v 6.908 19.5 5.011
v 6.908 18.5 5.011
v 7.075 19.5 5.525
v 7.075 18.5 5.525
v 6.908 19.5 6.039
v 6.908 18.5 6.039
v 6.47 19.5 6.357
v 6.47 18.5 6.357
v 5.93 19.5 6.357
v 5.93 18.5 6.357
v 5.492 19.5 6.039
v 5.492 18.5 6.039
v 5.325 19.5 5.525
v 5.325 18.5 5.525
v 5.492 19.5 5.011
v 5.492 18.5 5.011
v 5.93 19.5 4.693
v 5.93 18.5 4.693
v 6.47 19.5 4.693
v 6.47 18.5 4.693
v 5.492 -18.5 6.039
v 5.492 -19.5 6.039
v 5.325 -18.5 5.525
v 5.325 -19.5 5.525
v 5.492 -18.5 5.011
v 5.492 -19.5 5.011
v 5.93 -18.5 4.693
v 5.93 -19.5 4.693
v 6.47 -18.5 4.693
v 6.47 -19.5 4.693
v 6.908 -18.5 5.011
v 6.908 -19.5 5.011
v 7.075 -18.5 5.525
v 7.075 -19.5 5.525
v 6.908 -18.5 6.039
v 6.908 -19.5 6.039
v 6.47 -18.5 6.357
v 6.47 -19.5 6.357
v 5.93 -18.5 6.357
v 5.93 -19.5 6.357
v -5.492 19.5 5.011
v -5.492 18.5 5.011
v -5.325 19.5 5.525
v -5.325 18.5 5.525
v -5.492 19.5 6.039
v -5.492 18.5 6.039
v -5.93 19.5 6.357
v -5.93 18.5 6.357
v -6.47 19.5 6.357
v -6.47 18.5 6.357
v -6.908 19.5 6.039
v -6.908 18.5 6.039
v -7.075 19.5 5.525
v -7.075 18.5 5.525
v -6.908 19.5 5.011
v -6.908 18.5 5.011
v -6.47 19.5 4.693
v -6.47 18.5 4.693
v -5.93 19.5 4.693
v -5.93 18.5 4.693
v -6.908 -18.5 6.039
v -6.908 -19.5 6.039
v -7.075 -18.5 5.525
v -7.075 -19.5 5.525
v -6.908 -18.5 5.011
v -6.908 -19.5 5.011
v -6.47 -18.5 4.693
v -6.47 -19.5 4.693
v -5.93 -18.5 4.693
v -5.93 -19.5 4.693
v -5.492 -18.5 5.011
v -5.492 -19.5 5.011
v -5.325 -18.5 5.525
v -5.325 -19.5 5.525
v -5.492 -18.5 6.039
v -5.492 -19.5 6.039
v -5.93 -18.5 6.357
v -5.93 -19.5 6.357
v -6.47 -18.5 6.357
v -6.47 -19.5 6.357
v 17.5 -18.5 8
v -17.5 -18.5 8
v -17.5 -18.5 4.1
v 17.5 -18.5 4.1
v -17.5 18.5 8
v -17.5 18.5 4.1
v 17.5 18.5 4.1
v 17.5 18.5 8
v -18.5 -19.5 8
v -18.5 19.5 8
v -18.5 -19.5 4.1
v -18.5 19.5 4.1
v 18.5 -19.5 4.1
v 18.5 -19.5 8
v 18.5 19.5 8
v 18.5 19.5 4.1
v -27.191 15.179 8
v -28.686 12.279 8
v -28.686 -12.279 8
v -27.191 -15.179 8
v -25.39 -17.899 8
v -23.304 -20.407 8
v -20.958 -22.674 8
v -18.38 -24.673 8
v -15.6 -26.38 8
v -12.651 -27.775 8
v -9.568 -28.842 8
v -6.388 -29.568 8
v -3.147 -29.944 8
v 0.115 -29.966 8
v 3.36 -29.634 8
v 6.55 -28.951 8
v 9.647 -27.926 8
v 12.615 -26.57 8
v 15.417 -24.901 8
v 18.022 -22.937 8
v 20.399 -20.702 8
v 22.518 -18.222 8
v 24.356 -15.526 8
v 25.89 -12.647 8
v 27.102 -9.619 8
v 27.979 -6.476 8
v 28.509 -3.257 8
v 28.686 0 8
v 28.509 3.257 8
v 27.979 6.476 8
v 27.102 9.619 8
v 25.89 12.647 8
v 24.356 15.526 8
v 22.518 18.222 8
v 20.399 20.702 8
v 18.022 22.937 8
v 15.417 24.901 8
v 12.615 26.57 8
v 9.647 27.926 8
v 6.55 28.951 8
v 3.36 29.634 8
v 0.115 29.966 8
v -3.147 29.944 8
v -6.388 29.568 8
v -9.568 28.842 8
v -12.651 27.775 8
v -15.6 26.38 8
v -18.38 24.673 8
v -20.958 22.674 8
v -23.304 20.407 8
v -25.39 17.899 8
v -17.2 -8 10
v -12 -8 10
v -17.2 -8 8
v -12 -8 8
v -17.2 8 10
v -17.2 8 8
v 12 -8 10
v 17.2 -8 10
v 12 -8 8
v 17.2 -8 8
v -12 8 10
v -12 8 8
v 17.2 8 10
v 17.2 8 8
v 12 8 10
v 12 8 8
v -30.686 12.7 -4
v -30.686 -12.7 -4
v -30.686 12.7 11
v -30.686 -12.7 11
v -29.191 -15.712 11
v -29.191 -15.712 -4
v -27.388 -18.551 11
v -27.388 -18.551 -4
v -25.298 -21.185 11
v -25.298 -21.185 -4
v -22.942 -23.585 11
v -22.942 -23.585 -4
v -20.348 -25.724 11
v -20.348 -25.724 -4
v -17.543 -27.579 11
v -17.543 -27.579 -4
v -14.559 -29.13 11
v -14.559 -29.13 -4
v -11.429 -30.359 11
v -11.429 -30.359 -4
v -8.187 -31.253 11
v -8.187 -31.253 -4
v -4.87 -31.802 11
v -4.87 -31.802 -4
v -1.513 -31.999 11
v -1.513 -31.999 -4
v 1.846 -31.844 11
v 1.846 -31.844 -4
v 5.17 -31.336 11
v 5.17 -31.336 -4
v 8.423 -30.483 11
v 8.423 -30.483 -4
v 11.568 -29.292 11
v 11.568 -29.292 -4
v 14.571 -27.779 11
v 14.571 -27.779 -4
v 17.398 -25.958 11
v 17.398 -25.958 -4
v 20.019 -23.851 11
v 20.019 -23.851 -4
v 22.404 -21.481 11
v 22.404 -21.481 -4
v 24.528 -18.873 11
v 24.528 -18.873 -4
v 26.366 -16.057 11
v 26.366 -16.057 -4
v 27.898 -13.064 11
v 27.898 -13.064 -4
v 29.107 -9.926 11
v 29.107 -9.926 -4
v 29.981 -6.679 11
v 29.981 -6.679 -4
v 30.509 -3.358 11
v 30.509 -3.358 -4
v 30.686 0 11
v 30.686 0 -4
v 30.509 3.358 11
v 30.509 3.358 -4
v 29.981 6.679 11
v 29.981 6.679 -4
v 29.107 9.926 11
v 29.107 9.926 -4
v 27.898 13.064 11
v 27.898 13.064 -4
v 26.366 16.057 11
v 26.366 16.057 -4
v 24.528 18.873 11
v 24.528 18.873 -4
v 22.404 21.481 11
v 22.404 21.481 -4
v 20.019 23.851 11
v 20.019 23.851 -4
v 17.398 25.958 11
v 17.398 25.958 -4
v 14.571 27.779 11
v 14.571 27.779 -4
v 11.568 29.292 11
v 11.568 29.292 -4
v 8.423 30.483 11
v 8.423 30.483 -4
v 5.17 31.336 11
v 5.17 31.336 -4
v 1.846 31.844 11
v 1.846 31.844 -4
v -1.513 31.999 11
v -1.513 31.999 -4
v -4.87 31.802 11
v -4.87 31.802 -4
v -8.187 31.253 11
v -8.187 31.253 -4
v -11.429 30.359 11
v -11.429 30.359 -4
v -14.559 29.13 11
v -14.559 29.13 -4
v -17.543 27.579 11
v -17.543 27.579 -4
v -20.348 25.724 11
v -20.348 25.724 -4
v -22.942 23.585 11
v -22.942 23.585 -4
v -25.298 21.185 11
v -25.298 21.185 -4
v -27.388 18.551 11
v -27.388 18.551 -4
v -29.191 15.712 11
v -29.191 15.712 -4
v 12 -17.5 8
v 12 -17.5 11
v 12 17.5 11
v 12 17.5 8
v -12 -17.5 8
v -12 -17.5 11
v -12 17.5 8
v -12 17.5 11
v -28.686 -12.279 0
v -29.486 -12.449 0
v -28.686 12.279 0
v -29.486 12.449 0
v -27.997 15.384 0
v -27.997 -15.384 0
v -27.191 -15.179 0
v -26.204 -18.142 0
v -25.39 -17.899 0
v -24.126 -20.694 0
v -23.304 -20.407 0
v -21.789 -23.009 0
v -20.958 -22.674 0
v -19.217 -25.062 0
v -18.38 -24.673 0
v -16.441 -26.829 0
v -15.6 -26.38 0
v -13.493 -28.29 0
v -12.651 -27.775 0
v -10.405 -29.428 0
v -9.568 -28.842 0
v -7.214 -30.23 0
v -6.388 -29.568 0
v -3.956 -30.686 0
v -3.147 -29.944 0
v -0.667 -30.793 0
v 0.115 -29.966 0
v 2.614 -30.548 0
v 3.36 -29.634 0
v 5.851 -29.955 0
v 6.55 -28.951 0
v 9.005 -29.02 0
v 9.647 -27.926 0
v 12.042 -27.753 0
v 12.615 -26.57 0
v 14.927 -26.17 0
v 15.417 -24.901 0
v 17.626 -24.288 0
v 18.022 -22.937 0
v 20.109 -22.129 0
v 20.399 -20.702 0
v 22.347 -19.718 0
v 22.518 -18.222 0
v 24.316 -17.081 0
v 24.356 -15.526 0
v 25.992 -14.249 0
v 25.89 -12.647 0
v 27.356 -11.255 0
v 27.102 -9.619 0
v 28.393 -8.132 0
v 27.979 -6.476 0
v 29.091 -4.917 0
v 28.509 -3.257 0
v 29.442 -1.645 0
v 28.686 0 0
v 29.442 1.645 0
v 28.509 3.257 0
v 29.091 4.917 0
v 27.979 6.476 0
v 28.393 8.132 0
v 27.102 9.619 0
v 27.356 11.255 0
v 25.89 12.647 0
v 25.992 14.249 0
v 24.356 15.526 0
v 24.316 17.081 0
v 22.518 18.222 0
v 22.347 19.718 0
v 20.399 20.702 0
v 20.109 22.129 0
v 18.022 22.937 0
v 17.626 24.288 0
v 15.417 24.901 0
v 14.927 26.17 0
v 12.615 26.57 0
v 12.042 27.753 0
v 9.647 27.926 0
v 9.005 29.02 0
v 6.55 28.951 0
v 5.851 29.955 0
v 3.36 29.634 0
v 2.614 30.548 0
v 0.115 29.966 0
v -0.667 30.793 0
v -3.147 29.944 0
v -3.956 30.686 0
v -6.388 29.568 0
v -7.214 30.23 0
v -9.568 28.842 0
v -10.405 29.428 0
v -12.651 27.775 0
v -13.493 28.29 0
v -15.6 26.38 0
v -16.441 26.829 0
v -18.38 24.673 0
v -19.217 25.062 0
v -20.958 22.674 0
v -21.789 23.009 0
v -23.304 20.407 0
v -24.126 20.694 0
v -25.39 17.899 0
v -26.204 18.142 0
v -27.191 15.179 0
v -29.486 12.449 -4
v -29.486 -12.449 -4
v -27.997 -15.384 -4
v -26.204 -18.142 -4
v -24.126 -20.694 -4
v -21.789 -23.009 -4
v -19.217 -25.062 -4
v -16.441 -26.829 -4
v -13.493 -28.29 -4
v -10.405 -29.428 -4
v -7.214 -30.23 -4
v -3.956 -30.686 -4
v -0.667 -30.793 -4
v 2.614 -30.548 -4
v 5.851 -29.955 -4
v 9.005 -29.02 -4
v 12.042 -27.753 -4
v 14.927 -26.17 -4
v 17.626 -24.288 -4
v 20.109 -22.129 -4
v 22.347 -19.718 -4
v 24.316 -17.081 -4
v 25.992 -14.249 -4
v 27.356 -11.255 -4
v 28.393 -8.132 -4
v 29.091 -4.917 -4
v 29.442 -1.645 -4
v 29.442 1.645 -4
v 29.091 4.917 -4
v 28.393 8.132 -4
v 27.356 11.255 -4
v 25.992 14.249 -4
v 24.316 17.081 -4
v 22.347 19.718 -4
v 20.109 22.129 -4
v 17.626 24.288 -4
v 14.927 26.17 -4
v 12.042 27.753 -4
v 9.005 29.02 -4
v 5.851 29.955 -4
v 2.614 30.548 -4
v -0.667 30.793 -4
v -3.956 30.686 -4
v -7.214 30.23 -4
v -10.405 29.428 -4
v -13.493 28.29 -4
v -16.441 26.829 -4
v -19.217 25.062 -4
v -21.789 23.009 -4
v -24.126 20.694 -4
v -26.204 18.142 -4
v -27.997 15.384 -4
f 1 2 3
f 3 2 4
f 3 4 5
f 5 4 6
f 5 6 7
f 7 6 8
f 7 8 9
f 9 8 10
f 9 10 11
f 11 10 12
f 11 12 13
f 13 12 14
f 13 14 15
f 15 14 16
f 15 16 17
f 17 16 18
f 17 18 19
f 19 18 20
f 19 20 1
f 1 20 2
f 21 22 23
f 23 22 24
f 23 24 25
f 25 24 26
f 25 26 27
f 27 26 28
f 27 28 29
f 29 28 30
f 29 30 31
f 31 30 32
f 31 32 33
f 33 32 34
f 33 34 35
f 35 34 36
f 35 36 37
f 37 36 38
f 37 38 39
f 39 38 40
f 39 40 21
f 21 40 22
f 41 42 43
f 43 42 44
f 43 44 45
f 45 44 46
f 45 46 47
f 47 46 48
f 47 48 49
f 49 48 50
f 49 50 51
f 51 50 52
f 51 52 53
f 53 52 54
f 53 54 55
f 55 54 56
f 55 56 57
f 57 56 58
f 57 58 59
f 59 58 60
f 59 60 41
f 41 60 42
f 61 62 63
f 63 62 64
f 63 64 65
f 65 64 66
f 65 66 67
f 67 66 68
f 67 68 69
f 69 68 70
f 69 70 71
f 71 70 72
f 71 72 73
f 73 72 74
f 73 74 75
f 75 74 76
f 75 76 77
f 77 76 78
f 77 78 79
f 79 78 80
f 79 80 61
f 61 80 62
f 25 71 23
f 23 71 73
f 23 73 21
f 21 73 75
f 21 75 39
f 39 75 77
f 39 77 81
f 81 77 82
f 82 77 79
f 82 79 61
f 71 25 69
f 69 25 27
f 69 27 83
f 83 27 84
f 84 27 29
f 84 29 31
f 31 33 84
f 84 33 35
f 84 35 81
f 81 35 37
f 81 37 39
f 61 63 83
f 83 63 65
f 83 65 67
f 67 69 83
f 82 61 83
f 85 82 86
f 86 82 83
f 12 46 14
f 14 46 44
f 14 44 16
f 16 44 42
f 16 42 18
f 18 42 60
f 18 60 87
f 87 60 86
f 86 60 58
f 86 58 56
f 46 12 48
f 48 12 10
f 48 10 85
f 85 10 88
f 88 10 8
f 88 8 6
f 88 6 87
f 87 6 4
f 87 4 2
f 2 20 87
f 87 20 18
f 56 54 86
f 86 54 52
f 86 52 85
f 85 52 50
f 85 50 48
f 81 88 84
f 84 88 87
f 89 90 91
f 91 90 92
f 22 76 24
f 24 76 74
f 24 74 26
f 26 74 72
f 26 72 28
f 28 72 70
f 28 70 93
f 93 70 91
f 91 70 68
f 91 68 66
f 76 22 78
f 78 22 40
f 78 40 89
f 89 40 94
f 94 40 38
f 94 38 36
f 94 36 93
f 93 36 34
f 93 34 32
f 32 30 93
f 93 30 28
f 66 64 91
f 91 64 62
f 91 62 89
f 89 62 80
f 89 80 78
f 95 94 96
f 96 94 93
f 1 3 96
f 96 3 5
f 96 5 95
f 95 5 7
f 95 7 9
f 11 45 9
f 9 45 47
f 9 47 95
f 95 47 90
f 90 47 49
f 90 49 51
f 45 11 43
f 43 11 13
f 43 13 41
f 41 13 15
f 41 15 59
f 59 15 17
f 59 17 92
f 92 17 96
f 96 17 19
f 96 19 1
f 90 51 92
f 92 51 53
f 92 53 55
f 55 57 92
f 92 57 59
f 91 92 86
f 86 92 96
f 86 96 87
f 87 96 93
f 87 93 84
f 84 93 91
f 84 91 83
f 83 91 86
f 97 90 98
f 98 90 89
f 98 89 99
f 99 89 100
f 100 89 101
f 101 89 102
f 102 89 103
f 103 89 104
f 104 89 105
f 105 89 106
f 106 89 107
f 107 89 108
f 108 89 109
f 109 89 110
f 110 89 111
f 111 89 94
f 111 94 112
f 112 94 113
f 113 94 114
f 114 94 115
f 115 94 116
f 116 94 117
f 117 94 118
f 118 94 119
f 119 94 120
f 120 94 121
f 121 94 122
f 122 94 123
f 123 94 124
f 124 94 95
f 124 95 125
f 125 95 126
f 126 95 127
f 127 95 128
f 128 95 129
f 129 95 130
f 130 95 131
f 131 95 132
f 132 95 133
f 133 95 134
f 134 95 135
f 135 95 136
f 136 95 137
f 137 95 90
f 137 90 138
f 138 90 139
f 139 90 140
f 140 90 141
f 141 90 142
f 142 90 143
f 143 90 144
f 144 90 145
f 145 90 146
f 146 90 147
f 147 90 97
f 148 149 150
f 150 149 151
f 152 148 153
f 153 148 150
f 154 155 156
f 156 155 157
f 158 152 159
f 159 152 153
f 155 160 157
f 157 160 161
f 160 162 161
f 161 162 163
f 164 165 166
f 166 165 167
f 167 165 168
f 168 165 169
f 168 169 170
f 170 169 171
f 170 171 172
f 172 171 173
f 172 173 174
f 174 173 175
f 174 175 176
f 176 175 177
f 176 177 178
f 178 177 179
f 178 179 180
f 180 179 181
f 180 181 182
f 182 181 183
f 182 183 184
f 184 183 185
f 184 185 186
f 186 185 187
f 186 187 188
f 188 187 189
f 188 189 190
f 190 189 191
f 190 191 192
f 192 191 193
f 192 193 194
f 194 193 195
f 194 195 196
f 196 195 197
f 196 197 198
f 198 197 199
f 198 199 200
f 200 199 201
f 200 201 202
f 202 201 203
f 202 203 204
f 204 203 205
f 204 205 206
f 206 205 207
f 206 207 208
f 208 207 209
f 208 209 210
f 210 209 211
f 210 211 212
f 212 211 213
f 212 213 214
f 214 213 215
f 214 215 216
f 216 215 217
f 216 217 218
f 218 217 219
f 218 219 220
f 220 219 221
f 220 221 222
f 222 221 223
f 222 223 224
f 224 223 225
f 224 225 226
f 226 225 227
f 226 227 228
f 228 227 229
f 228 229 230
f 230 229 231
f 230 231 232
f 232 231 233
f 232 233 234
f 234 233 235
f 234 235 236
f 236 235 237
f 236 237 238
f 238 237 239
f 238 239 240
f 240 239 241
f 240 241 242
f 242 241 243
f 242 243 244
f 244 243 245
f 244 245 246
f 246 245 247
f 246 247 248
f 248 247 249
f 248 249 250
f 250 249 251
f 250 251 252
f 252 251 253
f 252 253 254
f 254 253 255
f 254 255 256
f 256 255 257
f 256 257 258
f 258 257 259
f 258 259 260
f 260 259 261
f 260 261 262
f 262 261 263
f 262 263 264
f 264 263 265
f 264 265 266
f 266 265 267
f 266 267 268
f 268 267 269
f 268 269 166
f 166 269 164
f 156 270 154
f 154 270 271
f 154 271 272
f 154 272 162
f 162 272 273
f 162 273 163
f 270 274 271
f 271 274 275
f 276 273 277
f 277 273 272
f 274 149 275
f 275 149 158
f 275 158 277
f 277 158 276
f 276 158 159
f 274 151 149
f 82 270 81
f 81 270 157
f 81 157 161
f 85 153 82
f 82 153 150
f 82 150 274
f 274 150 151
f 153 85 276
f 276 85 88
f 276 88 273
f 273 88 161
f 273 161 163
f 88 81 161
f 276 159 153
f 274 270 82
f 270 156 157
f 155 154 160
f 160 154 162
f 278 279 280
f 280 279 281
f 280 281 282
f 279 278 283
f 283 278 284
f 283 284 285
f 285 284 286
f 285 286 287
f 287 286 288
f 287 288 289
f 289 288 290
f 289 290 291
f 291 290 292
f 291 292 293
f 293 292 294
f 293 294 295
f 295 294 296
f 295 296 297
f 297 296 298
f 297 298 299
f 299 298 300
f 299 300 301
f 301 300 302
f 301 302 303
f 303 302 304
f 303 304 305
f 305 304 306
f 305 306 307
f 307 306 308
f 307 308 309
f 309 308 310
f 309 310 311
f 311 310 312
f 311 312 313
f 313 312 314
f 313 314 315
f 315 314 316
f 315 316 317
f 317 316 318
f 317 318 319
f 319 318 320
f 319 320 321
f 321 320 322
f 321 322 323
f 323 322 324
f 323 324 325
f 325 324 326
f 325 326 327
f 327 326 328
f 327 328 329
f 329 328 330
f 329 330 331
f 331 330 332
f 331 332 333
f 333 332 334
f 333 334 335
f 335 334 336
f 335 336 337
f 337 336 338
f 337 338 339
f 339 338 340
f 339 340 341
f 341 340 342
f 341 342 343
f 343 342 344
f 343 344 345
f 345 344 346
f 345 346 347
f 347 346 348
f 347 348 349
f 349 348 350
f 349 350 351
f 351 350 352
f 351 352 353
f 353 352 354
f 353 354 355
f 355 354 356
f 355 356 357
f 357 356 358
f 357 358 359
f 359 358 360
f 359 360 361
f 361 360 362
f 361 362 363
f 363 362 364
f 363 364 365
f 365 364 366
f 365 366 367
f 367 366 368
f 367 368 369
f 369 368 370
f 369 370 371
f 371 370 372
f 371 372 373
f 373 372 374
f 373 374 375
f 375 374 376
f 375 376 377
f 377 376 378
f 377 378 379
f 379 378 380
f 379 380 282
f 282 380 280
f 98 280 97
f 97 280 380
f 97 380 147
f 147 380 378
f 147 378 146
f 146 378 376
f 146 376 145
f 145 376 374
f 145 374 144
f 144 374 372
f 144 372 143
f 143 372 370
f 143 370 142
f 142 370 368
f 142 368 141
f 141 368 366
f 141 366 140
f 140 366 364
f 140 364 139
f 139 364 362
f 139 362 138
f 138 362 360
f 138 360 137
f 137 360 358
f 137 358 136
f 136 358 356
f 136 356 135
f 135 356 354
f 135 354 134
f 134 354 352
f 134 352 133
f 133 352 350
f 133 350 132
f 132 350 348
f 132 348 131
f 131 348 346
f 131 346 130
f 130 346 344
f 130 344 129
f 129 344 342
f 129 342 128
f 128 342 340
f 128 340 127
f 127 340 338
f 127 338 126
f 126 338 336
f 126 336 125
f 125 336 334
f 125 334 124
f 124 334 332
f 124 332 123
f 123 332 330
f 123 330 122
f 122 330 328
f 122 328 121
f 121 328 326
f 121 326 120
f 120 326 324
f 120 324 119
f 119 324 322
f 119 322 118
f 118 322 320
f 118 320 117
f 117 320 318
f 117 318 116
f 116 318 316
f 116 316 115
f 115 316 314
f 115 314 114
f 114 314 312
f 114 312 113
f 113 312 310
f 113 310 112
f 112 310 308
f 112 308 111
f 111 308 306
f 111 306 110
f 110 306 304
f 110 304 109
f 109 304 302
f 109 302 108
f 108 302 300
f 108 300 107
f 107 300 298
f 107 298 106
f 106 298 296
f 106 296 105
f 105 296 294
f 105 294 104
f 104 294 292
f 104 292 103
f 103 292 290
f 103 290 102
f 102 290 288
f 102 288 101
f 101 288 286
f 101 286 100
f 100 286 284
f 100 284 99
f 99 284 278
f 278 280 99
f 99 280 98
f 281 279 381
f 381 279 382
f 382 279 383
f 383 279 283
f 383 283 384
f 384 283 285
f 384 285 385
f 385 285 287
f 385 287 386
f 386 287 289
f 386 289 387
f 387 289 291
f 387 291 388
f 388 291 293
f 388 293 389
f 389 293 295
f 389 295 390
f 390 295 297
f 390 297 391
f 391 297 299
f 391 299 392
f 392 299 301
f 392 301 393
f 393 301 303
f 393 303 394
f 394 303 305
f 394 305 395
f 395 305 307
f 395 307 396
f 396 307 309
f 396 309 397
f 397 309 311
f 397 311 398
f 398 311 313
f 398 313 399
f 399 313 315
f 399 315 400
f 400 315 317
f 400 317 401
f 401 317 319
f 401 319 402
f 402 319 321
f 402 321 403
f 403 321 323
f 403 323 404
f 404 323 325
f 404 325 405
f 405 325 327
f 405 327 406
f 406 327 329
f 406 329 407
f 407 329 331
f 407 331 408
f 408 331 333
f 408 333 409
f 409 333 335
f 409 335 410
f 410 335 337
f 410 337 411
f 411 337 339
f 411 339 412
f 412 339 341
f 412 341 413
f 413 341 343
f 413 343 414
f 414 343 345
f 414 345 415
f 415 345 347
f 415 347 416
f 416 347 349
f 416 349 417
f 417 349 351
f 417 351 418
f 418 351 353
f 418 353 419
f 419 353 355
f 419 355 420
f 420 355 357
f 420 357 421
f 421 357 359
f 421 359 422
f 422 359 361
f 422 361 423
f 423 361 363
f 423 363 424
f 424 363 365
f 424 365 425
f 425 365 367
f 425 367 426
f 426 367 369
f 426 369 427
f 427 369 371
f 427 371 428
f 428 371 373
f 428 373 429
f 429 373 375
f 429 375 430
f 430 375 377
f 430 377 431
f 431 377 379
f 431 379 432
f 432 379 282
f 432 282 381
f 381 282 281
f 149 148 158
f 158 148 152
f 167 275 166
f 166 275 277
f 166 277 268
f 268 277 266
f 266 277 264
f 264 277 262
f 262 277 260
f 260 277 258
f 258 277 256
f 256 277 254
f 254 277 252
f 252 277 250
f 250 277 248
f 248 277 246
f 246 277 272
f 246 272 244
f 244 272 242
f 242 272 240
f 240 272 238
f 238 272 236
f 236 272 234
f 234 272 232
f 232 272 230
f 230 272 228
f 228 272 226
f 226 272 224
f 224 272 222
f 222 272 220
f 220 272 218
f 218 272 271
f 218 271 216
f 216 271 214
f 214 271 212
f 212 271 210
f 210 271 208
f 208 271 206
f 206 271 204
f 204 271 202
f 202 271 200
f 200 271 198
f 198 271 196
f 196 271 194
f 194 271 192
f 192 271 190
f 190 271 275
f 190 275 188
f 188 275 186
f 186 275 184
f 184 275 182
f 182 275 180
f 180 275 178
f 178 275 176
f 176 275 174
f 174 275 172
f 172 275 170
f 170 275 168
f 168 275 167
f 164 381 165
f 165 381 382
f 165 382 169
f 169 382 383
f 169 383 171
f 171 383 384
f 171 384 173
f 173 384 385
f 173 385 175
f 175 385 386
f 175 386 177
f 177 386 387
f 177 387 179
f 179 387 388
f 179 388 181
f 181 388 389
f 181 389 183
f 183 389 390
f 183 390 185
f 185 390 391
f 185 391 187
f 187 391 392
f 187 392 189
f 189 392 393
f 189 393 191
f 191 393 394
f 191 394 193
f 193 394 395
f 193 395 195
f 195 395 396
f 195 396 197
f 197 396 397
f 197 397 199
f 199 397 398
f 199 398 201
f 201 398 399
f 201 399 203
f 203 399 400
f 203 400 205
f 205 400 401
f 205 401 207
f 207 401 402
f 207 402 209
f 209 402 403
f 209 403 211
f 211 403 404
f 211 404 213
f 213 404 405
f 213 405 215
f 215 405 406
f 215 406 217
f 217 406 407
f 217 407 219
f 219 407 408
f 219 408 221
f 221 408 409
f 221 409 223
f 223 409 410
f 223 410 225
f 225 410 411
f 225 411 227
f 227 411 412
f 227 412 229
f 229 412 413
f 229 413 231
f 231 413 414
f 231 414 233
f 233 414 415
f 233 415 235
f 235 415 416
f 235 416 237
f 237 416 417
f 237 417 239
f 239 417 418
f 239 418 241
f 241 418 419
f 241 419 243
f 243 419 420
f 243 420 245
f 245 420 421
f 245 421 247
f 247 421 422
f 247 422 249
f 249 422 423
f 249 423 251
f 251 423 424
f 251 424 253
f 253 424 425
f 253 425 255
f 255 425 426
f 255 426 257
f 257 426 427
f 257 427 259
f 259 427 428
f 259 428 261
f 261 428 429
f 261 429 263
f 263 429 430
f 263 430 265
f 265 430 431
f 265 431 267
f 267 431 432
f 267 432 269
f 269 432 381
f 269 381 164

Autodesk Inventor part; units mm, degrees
ref_plane "YZ Plane" through (0, 0, 0) normal (1, 0, 0) x (0, 1, 0)
ref_plane "XZ Plane" through (0, 0, 0) normal (0, 1, 0) x (-1, 0, 0)
ref_plane "XY Plane" through (0, 0, 0) normal (0, 0, 1) x (1, 0, 0)
sketch "Skizze1" plane through (0, 0, 0) normal (0, 0, 1) x (1, 0, 0)
  arc A0 (-28.686, -12.2792) -> (-28.686, 12.2792) centre (-1.314, 0) ccw projected
  line L0 (-28.686, -12.2792) -> (-28.686, 12.2792) projected
  line L1 (-29.486, 12.4492) -> (-29.486, -12.4492) projected
  arc A1 (-29.486, -12.4492) -> (-29.486, 12.4492) centre (-1.314, 0) ccw projected
  arc A2 (-30.686, -12.7) -> (-30.686, 12.7) centre (-1.314, 0) ccw projected
  line L2 (-30.686, 12.7) -> (-30.686, -12.7) projected
  point P0 (0, 0)
extrude "Extrusion1" add sketch "Skizze1" against normal blind 4 contours L2 A2
sketch "Skizze2" plane through (0, 0, 0) normal (0, 0, 1) x (1, 0, 0)
  line L0 (-30.686, 12.7) -> (-30.686, -12.7) projected
  arc A0 (-30.686, -12.7) -> (-30.686, 12.7) centre (-1.314, 0) ccw projected
  arc A1 (-28.686, -12.2792) -> (-28.686, 12.2792) centre (-1.314, 0) ccw projected
  line L1 (-28.686, -12.2792) -> (-28.686, 12.2792) projected
  point P0 (0, 0)
extrude "Extrusion2" add sketch "Skizze2" along normal blind 8
sketch "Skizze3" plane through (0, 0, 8) normal (0, 0, 1) x (1, 0, 0)
  arc A0 (-30.686, -12.7) -> (-30.686, 12.7) centre (-1.314, 0) ccw projected
  line L0 (-30.686, 12.7) -> (-30.686, -12.7) projected
  point P0 (0, 0)
extrude "Extrusion3" add sketch "Skizze3" along normal blind 2
sketch "Skizze4" plane through (0, 0, 10) normal (0, 0, 1) x (1, 0, 0)
  line L0 (12, -17.5) -> (-12, -17.5)
  line L1 (-12, 17.5) -> (12, 17.5)
  line L2 (-17.2, 8) -> (-17.2, -8)
  line L3 (-17.2, -8) -> (-12, -8)
  line L4 (-12, 8) -> (-17.2, 8)
  line L5 (-12, -17.5) -> (-12, -8)
  line L6 (-12, 8) -> (-12, 17.5)
  line L7 (17.2, -8) -> (17.2, 8)
  line L8 (-17.2, 8) -> (-17.2, -8)
  line L9 (-17.2, -8) -> (-12, -8)
  line L10 (12, -8) -> (17.2, -8)
  line L11 (17.2, 8) -> (12, 8)
  line L12 (-12, 8) -> (-17.2, 8)
  line L13 (12, 17.5) -> (12, 8)
  line L14 (12, -8) -> (12, -17.5)
  point P0 (0, 0)
  dimension "d32" = 34.4
extrude "Extrusion4" cut sketch "Skizze4" against normal blind 2
sketch "Skizze5" plane through (0, 0, 8) normal (0, 0, -1) x (-1, 0, 0)
  line L0 (17, 18) -> (-17, -18) construction
  line L1 (17, -18) -> (-17, 18) construction
  line L2 (-17.5, -18.5) -> (17.5, -18.5)
  line L3 (17.5, -18.5) -> (17.5, 18.5)
  line L4 (17.5, 18.5) -> (-17.5, 18.5)
  line L5 (-17.5, 18.5) -> (-17.5, -18.5)
  line L6 (18.5, -19.5) -> (-18.5, -19.5)
  line L7 (-18.5, -19.5) -> (-18.5, 19.5)
  line L8 (-18.5, 19.5) -> (18.5, 19.5)
  line L9 (18.5, 19.5) -> (18.5, -19.5)
  point P0 (0, 0)
  dimension "d17" = 1
extrude "Extrusion5" add sketch "Skizze5" along normal blind 3.9
sketch "Skizze7" plane through (-18.5, 19.5, 8) normal (0, 1, 0) x (1, 0, 0)
  line L0 (0, 0) -> (0, 3.9) projected
  line L1 (37, 0) -> (37, 3.9) projected
  line L2 (0, 0) -> (37, 0)
  line L3 (37, 0) -> (37, 2.475)
  line L4 (0, 2.475) -> (0, 0)
  circle A0 centre (24.7, 2.475) radius 0.875
  circle A1 centre (12.3, 2.475) radius 0.875
  point P0 (18.5, 8)
  dimension "d25" = 2.475
  dimension "d28" = 1.75
  dimension "d29" = 1.75
extrude "Extrusion6" cut sketch "Skizze7" against normal blind 40
sketch "Skizze8" plane through (0, 0, 10) normal (0, 0, 1) x (1, 0, 0)
  arc A0 (-30.686, -12.7) -> (-30.686, 12.7) centre (-1.314, 0) ccw projected
  line L0 (-30.686, 12.7) -> (-30.686, -12.7) projected
  line L1 (-12, 8) -> (-12, 17.5) projected
  line L2 (12, -17.5) -> (12, -8) projected
  line L3 (-12, 17.5) -> (12, 17.5)
  line L4 (12, 17.5) -> (12, -17.5)
  line L5 (12, -17.5) -> (-12, -17.5)
  line L6 (-12, -17.5) -> (-12, 17.5)
  point P0 (0, 0)
extrude "Extrusion7" add sketch "Skizze8" along normal blind 1
properties part number "Deckel"
